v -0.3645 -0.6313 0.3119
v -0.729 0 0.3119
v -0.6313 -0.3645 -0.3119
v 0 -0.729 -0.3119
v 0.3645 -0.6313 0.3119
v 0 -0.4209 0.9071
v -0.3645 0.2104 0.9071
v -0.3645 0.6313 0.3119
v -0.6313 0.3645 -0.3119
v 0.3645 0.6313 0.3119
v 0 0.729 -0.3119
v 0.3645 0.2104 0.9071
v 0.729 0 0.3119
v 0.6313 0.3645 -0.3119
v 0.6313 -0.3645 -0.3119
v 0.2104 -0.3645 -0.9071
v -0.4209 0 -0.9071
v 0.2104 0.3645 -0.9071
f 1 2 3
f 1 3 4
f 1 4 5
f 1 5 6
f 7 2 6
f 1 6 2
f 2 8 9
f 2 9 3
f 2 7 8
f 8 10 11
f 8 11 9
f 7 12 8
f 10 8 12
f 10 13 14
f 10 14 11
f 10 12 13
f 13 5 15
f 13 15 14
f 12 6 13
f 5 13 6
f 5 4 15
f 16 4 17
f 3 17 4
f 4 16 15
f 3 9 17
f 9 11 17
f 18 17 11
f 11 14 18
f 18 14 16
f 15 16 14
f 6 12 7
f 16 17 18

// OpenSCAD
polyhedron( points = [[-0.364506732569717, -0.631344180659404, 0.311871842722046], [-0.729013465221309, 8.13600526604319e-11, 0.311871842722046], [-0.364506732739787, 0.631344180789393, 0.311871842722046], [0.364506732412223, 0.631344180789393, 0.311871842722046], [0.729013465120508, 8.13615095219938e-11, 0.311871842722046], [0.364506732695675, -0.631344180659404, 0.311871842722046], [8.18761863371184e-11, -0.729013465269746, -0.311871842807174], [-0.631344180527968, -0.364506732580359, -0.311871842807174], [-0.631344180585095, 0.364506732559426, -0.311871842765209], [-3.23879750035405e-11, 0.729013465047631, -0.311871842723244], [0.631344180610184, 0.364506732414935, -0.311871842723244], [0.631344180732775, -0.364506732724857, -0.311871842765209], [8.18761863371184e-11, -0.420896120345595, 0.907108844527578], [0.364506732436181, 0.210448060294838, 0.907108844527578], [-0.364506732536986, 0.210448060347181, 0.90710884453373], [0.210448060222497, -0.364506732628594, -0.90710884445524], [-0.420896120276099, 9.165844516813e-12, -0.90710884445524], [0.210448060095555, 0.364506732453274, -0.907108844419431]], faces = [[0, 1, 7], [0, 7, 6], [0, 6, 5], [0, 5, 12], [0, 12, 14, 1], [1, 2, 8], [1, 8, 7], [1, 14, 2], [2, 3, 9], [2, 9, 8], [2, 14, 13, 3], [3, 4, 10], [3, 10, 9], [3, 13, 4], [4, 5, 11], [4, 11, 10], [4, 13, 12, 5], [5, 6, 11], [6, 7, 16, 15], [6, 15, 11], [7, 8, 16], [8, 9, 17, 16], [9, 10, 17], [10, 11, 15, 17], [12, 13, 14], [15, 16, 17]]);
